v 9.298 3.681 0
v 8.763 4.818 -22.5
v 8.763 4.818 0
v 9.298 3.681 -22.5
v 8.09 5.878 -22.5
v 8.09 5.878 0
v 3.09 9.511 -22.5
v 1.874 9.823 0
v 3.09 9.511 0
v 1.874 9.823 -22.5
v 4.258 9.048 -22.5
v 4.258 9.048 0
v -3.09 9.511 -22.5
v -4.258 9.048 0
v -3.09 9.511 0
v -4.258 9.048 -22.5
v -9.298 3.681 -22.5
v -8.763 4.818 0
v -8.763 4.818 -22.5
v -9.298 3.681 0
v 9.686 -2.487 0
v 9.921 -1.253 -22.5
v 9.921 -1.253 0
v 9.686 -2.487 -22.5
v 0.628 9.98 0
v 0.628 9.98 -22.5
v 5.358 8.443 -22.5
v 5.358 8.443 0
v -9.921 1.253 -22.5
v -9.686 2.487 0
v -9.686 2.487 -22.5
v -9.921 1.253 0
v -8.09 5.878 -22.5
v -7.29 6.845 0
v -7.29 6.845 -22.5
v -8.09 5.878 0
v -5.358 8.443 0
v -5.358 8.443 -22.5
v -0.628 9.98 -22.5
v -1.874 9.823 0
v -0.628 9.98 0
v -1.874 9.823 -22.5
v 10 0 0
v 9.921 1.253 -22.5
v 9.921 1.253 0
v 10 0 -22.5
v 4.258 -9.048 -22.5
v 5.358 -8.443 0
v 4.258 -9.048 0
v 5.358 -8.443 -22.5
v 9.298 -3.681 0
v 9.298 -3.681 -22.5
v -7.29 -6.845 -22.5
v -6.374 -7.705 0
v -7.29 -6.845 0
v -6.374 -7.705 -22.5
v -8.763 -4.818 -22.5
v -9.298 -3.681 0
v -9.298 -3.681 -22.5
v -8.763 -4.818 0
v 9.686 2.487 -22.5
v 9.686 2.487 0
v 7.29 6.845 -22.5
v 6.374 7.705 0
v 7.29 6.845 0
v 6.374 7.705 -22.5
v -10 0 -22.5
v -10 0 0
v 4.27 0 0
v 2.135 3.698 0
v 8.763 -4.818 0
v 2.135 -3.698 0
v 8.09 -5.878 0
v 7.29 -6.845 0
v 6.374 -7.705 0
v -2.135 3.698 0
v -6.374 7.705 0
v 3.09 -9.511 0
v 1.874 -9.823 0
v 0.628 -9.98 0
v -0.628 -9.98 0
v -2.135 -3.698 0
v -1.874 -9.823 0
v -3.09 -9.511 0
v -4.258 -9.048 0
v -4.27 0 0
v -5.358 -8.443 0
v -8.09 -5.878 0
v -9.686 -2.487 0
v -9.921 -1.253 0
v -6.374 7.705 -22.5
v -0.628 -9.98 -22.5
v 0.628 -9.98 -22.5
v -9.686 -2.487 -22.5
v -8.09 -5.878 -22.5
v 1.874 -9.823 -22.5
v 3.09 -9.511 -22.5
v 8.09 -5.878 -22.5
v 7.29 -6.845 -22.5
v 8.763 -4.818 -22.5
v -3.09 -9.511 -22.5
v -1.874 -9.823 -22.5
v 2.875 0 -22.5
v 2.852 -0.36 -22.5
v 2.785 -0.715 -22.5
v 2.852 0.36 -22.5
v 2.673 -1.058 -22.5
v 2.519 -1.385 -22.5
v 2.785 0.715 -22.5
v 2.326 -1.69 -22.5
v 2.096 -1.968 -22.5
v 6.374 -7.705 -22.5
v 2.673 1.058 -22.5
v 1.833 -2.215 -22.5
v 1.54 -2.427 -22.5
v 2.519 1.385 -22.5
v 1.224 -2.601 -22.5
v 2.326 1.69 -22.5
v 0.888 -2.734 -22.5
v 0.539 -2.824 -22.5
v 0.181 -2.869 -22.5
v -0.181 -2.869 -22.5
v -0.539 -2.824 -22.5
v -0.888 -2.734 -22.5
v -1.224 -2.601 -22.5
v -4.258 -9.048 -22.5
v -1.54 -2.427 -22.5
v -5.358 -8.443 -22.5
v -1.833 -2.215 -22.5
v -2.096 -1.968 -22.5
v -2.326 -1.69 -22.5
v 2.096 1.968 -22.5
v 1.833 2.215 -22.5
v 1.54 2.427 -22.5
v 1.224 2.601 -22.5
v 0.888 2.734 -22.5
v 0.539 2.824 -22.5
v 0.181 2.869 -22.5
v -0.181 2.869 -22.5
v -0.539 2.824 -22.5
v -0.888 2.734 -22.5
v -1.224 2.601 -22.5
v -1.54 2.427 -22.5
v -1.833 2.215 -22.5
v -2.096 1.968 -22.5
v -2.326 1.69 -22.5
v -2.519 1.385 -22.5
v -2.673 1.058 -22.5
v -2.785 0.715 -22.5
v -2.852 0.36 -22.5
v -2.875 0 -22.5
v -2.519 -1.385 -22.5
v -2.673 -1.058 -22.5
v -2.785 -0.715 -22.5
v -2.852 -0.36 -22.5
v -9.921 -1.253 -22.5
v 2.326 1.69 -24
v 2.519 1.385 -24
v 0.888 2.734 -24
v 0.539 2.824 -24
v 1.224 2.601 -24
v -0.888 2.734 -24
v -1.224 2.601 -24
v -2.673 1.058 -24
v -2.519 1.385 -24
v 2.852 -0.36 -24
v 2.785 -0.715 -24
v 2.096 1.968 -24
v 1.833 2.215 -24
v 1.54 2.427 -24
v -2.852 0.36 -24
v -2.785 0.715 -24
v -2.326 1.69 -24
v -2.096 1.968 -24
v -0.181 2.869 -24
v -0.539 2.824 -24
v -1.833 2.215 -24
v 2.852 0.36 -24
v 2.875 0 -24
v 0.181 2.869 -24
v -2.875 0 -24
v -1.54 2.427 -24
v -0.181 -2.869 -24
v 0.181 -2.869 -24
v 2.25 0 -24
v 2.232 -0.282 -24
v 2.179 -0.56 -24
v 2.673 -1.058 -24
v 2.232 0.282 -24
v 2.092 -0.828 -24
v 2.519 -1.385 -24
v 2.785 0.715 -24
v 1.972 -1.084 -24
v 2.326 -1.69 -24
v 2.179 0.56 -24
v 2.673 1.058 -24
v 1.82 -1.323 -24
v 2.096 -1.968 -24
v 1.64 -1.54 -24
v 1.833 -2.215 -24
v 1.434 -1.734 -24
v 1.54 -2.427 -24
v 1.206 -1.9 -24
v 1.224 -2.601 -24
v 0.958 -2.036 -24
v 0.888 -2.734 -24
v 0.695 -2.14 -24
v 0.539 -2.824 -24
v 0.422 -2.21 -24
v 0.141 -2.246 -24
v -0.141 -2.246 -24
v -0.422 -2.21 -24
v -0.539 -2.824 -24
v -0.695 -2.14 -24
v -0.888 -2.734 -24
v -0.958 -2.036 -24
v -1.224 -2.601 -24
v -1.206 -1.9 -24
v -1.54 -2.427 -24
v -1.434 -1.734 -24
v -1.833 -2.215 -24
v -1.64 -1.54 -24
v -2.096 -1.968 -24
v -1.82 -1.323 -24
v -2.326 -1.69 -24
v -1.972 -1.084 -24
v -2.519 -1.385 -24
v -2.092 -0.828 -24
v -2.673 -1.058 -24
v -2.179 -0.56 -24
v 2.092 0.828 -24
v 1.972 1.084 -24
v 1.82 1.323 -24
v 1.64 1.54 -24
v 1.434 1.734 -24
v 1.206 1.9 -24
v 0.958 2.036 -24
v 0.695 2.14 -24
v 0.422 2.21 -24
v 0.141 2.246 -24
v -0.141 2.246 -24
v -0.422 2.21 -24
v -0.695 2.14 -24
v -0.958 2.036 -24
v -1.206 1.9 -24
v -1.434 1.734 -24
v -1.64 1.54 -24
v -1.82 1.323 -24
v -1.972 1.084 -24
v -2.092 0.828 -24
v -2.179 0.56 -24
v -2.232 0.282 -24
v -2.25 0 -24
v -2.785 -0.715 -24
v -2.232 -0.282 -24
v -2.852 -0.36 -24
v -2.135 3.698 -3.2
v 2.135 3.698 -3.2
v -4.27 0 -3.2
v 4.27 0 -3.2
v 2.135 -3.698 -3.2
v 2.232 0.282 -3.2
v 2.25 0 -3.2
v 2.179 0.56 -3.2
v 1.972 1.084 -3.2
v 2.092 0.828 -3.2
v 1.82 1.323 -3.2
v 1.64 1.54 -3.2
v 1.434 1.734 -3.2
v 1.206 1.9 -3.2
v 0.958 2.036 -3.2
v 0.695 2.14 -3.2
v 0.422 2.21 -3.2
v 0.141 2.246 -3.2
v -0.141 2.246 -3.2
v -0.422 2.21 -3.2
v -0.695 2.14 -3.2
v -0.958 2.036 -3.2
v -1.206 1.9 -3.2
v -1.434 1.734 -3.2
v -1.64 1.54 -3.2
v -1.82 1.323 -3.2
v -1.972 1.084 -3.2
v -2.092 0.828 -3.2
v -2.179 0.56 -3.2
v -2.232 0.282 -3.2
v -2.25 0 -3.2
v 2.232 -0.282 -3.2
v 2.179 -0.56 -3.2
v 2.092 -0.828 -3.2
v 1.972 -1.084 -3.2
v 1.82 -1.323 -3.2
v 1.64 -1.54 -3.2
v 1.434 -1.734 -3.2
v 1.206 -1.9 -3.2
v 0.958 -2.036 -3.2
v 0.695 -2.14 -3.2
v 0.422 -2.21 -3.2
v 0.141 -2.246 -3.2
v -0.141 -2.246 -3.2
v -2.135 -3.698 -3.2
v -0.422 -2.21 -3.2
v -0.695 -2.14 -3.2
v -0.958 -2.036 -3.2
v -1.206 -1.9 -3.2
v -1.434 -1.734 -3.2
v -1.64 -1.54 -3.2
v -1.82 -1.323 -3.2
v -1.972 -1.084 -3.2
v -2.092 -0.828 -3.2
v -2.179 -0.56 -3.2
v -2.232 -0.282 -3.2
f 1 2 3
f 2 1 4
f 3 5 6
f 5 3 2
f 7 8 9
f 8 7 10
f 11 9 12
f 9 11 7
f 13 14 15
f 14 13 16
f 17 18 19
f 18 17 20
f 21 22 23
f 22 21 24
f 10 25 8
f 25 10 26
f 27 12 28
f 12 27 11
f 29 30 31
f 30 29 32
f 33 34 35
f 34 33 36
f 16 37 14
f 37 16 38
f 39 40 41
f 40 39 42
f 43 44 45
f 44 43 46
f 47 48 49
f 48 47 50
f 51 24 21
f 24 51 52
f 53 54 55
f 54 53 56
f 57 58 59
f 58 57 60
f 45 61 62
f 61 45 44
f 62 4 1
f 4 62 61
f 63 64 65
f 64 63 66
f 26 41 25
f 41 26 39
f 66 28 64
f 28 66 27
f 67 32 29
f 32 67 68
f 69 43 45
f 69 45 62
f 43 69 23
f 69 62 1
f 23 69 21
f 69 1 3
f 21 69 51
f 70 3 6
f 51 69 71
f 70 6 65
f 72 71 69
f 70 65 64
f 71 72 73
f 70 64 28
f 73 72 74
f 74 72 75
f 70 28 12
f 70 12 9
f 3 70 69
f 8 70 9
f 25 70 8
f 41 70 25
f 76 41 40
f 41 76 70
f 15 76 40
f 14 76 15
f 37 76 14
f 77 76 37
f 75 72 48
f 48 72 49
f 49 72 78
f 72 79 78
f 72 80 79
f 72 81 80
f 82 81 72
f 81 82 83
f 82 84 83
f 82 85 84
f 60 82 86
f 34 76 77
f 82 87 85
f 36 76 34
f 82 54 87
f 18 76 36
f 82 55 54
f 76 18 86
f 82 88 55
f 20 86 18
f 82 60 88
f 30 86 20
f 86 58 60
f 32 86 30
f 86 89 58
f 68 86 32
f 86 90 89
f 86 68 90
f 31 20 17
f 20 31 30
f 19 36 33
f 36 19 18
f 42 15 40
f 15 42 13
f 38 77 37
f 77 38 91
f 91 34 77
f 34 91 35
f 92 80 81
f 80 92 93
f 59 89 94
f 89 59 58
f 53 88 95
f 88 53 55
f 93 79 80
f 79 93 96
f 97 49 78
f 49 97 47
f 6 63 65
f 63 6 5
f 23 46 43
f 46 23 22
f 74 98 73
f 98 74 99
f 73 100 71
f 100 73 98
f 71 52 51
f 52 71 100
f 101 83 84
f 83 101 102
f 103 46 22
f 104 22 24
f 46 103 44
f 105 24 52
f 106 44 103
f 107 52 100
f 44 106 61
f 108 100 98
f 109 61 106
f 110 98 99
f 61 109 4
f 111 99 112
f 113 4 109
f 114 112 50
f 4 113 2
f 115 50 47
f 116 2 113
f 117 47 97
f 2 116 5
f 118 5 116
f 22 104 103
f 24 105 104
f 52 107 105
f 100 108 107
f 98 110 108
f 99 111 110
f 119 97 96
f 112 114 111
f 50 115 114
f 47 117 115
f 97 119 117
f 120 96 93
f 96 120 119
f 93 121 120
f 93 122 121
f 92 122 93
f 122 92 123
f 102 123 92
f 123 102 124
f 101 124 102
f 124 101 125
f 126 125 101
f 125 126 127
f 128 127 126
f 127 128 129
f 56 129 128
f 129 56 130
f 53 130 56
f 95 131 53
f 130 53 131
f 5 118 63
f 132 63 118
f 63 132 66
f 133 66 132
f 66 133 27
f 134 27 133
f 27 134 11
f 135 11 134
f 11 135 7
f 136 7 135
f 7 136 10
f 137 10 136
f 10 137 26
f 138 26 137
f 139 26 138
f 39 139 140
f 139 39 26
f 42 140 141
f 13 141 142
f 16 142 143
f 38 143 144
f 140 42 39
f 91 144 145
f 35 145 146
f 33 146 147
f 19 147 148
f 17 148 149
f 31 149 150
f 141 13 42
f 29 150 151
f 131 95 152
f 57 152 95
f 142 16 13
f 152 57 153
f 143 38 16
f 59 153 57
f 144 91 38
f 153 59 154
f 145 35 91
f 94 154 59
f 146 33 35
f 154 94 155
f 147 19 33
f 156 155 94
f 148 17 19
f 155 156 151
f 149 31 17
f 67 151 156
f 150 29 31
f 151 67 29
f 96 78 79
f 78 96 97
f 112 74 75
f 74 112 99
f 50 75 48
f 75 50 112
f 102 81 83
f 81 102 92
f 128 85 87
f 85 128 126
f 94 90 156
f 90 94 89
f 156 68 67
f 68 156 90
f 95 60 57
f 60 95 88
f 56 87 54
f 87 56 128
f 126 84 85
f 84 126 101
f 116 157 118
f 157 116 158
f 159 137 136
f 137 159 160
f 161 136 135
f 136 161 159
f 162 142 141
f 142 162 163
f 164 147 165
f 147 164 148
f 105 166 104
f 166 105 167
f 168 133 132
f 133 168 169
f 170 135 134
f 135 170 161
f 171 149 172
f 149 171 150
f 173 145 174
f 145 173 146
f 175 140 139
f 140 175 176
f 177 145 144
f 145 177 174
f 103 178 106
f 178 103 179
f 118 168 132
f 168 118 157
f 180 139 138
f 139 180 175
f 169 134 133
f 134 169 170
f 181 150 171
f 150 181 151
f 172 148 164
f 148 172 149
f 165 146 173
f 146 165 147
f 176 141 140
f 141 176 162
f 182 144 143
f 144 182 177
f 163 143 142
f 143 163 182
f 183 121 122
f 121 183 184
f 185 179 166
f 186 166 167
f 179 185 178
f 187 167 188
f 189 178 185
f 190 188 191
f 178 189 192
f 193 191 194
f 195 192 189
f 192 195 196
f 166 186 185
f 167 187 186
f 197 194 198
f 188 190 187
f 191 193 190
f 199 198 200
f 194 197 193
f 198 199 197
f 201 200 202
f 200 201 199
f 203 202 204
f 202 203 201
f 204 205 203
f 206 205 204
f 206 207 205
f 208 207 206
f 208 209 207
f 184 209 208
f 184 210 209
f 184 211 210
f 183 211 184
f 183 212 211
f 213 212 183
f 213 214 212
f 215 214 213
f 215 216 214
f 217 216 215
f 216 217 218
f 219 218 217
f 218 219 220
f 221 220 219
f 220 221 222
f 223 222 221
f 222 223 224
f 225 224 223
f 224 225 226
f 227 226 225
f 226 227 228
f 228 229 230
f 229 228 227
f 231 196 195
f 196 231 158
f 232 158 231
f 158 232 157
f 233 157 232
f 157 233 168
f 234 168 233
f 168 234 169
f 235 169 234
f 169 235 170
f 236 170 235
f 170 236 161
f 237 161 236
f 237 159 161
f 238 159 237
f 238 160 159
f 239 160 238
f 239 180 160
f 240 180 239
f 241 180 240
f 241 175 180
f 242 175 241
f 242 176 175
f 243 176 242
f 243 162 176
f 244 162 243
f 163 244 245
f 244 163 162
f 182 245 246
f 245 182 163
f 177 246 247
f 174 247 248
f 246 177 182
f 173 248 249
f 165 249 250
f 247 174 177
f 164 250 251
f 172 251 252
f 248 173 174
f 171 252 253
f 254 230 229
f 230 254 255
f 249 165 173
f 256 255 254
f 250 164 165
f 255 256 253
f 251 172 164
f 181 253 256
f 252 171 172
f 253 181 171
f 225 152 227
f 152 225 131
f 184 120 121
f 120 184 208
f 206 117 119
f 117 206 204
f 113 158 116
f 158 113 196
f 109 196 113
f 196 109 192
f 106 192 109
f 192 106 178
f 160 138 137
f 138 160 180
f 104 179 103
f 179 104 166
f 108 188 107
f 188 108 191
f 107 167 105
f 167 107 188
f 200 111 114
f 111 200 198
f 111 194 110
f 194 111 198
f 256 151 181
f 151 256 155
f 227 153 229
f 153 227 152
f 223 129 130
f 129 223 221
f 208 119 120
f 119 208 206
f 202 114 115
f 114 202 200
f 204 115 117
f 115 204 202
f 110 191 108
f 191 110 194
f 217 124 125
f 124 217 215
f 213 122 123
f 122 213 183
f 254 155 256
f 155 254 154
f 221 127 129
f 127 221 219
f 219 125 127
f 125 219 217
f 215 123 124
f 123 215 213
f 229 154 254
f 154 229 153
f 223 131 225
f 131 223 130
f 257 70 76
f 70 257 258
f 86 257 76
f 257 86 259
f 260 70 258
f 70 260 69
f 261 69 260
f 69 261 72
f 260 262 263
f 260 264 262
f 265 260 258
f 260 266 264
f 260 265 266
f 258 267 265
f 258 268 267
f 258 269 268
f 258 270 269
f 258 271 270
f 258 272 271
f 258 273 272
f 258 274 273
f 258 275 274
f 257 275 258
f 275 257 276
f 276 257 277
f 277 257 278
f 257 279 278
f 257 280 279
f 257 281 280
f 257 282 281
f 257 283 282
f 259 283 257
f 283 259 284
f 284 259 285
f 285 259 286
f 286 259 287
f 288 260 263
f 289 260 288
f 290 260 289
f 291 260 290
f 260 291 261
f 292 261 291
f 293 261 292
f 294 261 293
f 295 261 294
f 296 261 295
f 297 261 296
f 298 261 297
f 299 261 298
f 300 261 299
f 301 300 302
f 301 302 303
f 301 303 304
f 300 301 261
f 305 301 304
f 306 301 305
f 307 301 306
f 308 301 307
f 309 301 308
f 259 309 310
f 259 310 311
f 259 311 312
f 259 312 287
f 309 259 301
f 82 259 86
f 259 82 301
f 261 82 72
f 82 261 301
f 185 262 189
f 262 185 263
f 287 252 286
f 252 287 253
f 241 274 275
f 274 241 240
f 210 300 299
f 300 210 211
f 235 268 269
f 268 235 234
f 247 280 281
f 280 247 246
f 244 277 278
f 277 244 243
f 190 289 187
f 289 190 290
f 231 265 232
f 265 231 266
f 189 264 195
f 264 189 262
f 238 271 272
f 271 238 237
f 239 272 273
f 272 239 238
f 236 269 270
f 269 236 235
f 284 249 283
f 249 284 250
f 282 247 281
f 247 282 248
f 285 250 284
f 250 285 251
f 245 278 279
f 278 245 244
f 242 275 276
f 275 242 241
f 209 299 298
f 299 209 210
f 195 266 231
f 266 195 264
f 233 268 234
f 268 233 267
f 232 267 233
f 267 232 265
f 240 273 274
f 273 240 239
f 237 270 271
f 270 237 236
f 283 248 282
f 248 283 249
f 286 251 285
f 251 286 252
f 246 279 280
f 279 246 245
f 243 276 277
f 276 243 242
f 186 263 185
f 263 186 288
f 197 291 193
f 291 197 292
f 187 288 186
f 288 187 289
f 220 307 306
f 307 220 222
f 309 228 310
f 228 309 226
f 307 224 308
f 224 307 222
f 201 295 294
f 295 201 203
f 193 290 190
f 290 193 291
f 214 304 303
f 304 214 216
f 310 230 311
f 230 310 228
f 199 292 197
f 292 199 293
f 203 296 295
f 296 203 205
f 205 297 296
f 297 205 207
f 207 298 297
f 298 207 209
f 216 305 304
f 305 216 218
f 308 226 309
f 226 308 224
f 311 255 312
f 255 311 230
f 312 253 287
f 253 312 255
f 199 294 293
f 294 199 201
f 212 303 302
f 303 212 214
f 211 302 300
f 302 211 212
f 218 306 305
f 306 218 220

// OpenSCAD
$fn = 50;


difference() {
	union() {
		translate(v = [0, 0, -22.5000000000]) {
			cylinder(h = 22.5000000000, r = 10.0000000000);
		}
		#translate(v = [0, 0, -24.0000000000]) {
			cylinder(h = 24, r = 2.8750000000);
		}
	}
	union() {
		translate(v = [0, 0, 0]) {
			rotate(a = [0, 0, 0]) {
				difference() {
					union() {
						translate(v = [0, 0, -3.2000000000]) {
							linear_extrude(height = 3.2000000000) {
								polygon(points = [[4.2698000000, 0.0000000000], [2.1349000000, 3.6977552691], [-2.1349000000, 3.6977552691], [-4.2698000000, 0.0000000000], [-2.1349000000, -3.6977552691], [2.1349000000, -3.6977552691]]);
							}
						}
					}
					union();
				}
			}
		}
		#translate(v = [0, 0, -100.0000000000]) {
			cylinder(h = 200, r = 2.2500000000);
		}
	}
}
